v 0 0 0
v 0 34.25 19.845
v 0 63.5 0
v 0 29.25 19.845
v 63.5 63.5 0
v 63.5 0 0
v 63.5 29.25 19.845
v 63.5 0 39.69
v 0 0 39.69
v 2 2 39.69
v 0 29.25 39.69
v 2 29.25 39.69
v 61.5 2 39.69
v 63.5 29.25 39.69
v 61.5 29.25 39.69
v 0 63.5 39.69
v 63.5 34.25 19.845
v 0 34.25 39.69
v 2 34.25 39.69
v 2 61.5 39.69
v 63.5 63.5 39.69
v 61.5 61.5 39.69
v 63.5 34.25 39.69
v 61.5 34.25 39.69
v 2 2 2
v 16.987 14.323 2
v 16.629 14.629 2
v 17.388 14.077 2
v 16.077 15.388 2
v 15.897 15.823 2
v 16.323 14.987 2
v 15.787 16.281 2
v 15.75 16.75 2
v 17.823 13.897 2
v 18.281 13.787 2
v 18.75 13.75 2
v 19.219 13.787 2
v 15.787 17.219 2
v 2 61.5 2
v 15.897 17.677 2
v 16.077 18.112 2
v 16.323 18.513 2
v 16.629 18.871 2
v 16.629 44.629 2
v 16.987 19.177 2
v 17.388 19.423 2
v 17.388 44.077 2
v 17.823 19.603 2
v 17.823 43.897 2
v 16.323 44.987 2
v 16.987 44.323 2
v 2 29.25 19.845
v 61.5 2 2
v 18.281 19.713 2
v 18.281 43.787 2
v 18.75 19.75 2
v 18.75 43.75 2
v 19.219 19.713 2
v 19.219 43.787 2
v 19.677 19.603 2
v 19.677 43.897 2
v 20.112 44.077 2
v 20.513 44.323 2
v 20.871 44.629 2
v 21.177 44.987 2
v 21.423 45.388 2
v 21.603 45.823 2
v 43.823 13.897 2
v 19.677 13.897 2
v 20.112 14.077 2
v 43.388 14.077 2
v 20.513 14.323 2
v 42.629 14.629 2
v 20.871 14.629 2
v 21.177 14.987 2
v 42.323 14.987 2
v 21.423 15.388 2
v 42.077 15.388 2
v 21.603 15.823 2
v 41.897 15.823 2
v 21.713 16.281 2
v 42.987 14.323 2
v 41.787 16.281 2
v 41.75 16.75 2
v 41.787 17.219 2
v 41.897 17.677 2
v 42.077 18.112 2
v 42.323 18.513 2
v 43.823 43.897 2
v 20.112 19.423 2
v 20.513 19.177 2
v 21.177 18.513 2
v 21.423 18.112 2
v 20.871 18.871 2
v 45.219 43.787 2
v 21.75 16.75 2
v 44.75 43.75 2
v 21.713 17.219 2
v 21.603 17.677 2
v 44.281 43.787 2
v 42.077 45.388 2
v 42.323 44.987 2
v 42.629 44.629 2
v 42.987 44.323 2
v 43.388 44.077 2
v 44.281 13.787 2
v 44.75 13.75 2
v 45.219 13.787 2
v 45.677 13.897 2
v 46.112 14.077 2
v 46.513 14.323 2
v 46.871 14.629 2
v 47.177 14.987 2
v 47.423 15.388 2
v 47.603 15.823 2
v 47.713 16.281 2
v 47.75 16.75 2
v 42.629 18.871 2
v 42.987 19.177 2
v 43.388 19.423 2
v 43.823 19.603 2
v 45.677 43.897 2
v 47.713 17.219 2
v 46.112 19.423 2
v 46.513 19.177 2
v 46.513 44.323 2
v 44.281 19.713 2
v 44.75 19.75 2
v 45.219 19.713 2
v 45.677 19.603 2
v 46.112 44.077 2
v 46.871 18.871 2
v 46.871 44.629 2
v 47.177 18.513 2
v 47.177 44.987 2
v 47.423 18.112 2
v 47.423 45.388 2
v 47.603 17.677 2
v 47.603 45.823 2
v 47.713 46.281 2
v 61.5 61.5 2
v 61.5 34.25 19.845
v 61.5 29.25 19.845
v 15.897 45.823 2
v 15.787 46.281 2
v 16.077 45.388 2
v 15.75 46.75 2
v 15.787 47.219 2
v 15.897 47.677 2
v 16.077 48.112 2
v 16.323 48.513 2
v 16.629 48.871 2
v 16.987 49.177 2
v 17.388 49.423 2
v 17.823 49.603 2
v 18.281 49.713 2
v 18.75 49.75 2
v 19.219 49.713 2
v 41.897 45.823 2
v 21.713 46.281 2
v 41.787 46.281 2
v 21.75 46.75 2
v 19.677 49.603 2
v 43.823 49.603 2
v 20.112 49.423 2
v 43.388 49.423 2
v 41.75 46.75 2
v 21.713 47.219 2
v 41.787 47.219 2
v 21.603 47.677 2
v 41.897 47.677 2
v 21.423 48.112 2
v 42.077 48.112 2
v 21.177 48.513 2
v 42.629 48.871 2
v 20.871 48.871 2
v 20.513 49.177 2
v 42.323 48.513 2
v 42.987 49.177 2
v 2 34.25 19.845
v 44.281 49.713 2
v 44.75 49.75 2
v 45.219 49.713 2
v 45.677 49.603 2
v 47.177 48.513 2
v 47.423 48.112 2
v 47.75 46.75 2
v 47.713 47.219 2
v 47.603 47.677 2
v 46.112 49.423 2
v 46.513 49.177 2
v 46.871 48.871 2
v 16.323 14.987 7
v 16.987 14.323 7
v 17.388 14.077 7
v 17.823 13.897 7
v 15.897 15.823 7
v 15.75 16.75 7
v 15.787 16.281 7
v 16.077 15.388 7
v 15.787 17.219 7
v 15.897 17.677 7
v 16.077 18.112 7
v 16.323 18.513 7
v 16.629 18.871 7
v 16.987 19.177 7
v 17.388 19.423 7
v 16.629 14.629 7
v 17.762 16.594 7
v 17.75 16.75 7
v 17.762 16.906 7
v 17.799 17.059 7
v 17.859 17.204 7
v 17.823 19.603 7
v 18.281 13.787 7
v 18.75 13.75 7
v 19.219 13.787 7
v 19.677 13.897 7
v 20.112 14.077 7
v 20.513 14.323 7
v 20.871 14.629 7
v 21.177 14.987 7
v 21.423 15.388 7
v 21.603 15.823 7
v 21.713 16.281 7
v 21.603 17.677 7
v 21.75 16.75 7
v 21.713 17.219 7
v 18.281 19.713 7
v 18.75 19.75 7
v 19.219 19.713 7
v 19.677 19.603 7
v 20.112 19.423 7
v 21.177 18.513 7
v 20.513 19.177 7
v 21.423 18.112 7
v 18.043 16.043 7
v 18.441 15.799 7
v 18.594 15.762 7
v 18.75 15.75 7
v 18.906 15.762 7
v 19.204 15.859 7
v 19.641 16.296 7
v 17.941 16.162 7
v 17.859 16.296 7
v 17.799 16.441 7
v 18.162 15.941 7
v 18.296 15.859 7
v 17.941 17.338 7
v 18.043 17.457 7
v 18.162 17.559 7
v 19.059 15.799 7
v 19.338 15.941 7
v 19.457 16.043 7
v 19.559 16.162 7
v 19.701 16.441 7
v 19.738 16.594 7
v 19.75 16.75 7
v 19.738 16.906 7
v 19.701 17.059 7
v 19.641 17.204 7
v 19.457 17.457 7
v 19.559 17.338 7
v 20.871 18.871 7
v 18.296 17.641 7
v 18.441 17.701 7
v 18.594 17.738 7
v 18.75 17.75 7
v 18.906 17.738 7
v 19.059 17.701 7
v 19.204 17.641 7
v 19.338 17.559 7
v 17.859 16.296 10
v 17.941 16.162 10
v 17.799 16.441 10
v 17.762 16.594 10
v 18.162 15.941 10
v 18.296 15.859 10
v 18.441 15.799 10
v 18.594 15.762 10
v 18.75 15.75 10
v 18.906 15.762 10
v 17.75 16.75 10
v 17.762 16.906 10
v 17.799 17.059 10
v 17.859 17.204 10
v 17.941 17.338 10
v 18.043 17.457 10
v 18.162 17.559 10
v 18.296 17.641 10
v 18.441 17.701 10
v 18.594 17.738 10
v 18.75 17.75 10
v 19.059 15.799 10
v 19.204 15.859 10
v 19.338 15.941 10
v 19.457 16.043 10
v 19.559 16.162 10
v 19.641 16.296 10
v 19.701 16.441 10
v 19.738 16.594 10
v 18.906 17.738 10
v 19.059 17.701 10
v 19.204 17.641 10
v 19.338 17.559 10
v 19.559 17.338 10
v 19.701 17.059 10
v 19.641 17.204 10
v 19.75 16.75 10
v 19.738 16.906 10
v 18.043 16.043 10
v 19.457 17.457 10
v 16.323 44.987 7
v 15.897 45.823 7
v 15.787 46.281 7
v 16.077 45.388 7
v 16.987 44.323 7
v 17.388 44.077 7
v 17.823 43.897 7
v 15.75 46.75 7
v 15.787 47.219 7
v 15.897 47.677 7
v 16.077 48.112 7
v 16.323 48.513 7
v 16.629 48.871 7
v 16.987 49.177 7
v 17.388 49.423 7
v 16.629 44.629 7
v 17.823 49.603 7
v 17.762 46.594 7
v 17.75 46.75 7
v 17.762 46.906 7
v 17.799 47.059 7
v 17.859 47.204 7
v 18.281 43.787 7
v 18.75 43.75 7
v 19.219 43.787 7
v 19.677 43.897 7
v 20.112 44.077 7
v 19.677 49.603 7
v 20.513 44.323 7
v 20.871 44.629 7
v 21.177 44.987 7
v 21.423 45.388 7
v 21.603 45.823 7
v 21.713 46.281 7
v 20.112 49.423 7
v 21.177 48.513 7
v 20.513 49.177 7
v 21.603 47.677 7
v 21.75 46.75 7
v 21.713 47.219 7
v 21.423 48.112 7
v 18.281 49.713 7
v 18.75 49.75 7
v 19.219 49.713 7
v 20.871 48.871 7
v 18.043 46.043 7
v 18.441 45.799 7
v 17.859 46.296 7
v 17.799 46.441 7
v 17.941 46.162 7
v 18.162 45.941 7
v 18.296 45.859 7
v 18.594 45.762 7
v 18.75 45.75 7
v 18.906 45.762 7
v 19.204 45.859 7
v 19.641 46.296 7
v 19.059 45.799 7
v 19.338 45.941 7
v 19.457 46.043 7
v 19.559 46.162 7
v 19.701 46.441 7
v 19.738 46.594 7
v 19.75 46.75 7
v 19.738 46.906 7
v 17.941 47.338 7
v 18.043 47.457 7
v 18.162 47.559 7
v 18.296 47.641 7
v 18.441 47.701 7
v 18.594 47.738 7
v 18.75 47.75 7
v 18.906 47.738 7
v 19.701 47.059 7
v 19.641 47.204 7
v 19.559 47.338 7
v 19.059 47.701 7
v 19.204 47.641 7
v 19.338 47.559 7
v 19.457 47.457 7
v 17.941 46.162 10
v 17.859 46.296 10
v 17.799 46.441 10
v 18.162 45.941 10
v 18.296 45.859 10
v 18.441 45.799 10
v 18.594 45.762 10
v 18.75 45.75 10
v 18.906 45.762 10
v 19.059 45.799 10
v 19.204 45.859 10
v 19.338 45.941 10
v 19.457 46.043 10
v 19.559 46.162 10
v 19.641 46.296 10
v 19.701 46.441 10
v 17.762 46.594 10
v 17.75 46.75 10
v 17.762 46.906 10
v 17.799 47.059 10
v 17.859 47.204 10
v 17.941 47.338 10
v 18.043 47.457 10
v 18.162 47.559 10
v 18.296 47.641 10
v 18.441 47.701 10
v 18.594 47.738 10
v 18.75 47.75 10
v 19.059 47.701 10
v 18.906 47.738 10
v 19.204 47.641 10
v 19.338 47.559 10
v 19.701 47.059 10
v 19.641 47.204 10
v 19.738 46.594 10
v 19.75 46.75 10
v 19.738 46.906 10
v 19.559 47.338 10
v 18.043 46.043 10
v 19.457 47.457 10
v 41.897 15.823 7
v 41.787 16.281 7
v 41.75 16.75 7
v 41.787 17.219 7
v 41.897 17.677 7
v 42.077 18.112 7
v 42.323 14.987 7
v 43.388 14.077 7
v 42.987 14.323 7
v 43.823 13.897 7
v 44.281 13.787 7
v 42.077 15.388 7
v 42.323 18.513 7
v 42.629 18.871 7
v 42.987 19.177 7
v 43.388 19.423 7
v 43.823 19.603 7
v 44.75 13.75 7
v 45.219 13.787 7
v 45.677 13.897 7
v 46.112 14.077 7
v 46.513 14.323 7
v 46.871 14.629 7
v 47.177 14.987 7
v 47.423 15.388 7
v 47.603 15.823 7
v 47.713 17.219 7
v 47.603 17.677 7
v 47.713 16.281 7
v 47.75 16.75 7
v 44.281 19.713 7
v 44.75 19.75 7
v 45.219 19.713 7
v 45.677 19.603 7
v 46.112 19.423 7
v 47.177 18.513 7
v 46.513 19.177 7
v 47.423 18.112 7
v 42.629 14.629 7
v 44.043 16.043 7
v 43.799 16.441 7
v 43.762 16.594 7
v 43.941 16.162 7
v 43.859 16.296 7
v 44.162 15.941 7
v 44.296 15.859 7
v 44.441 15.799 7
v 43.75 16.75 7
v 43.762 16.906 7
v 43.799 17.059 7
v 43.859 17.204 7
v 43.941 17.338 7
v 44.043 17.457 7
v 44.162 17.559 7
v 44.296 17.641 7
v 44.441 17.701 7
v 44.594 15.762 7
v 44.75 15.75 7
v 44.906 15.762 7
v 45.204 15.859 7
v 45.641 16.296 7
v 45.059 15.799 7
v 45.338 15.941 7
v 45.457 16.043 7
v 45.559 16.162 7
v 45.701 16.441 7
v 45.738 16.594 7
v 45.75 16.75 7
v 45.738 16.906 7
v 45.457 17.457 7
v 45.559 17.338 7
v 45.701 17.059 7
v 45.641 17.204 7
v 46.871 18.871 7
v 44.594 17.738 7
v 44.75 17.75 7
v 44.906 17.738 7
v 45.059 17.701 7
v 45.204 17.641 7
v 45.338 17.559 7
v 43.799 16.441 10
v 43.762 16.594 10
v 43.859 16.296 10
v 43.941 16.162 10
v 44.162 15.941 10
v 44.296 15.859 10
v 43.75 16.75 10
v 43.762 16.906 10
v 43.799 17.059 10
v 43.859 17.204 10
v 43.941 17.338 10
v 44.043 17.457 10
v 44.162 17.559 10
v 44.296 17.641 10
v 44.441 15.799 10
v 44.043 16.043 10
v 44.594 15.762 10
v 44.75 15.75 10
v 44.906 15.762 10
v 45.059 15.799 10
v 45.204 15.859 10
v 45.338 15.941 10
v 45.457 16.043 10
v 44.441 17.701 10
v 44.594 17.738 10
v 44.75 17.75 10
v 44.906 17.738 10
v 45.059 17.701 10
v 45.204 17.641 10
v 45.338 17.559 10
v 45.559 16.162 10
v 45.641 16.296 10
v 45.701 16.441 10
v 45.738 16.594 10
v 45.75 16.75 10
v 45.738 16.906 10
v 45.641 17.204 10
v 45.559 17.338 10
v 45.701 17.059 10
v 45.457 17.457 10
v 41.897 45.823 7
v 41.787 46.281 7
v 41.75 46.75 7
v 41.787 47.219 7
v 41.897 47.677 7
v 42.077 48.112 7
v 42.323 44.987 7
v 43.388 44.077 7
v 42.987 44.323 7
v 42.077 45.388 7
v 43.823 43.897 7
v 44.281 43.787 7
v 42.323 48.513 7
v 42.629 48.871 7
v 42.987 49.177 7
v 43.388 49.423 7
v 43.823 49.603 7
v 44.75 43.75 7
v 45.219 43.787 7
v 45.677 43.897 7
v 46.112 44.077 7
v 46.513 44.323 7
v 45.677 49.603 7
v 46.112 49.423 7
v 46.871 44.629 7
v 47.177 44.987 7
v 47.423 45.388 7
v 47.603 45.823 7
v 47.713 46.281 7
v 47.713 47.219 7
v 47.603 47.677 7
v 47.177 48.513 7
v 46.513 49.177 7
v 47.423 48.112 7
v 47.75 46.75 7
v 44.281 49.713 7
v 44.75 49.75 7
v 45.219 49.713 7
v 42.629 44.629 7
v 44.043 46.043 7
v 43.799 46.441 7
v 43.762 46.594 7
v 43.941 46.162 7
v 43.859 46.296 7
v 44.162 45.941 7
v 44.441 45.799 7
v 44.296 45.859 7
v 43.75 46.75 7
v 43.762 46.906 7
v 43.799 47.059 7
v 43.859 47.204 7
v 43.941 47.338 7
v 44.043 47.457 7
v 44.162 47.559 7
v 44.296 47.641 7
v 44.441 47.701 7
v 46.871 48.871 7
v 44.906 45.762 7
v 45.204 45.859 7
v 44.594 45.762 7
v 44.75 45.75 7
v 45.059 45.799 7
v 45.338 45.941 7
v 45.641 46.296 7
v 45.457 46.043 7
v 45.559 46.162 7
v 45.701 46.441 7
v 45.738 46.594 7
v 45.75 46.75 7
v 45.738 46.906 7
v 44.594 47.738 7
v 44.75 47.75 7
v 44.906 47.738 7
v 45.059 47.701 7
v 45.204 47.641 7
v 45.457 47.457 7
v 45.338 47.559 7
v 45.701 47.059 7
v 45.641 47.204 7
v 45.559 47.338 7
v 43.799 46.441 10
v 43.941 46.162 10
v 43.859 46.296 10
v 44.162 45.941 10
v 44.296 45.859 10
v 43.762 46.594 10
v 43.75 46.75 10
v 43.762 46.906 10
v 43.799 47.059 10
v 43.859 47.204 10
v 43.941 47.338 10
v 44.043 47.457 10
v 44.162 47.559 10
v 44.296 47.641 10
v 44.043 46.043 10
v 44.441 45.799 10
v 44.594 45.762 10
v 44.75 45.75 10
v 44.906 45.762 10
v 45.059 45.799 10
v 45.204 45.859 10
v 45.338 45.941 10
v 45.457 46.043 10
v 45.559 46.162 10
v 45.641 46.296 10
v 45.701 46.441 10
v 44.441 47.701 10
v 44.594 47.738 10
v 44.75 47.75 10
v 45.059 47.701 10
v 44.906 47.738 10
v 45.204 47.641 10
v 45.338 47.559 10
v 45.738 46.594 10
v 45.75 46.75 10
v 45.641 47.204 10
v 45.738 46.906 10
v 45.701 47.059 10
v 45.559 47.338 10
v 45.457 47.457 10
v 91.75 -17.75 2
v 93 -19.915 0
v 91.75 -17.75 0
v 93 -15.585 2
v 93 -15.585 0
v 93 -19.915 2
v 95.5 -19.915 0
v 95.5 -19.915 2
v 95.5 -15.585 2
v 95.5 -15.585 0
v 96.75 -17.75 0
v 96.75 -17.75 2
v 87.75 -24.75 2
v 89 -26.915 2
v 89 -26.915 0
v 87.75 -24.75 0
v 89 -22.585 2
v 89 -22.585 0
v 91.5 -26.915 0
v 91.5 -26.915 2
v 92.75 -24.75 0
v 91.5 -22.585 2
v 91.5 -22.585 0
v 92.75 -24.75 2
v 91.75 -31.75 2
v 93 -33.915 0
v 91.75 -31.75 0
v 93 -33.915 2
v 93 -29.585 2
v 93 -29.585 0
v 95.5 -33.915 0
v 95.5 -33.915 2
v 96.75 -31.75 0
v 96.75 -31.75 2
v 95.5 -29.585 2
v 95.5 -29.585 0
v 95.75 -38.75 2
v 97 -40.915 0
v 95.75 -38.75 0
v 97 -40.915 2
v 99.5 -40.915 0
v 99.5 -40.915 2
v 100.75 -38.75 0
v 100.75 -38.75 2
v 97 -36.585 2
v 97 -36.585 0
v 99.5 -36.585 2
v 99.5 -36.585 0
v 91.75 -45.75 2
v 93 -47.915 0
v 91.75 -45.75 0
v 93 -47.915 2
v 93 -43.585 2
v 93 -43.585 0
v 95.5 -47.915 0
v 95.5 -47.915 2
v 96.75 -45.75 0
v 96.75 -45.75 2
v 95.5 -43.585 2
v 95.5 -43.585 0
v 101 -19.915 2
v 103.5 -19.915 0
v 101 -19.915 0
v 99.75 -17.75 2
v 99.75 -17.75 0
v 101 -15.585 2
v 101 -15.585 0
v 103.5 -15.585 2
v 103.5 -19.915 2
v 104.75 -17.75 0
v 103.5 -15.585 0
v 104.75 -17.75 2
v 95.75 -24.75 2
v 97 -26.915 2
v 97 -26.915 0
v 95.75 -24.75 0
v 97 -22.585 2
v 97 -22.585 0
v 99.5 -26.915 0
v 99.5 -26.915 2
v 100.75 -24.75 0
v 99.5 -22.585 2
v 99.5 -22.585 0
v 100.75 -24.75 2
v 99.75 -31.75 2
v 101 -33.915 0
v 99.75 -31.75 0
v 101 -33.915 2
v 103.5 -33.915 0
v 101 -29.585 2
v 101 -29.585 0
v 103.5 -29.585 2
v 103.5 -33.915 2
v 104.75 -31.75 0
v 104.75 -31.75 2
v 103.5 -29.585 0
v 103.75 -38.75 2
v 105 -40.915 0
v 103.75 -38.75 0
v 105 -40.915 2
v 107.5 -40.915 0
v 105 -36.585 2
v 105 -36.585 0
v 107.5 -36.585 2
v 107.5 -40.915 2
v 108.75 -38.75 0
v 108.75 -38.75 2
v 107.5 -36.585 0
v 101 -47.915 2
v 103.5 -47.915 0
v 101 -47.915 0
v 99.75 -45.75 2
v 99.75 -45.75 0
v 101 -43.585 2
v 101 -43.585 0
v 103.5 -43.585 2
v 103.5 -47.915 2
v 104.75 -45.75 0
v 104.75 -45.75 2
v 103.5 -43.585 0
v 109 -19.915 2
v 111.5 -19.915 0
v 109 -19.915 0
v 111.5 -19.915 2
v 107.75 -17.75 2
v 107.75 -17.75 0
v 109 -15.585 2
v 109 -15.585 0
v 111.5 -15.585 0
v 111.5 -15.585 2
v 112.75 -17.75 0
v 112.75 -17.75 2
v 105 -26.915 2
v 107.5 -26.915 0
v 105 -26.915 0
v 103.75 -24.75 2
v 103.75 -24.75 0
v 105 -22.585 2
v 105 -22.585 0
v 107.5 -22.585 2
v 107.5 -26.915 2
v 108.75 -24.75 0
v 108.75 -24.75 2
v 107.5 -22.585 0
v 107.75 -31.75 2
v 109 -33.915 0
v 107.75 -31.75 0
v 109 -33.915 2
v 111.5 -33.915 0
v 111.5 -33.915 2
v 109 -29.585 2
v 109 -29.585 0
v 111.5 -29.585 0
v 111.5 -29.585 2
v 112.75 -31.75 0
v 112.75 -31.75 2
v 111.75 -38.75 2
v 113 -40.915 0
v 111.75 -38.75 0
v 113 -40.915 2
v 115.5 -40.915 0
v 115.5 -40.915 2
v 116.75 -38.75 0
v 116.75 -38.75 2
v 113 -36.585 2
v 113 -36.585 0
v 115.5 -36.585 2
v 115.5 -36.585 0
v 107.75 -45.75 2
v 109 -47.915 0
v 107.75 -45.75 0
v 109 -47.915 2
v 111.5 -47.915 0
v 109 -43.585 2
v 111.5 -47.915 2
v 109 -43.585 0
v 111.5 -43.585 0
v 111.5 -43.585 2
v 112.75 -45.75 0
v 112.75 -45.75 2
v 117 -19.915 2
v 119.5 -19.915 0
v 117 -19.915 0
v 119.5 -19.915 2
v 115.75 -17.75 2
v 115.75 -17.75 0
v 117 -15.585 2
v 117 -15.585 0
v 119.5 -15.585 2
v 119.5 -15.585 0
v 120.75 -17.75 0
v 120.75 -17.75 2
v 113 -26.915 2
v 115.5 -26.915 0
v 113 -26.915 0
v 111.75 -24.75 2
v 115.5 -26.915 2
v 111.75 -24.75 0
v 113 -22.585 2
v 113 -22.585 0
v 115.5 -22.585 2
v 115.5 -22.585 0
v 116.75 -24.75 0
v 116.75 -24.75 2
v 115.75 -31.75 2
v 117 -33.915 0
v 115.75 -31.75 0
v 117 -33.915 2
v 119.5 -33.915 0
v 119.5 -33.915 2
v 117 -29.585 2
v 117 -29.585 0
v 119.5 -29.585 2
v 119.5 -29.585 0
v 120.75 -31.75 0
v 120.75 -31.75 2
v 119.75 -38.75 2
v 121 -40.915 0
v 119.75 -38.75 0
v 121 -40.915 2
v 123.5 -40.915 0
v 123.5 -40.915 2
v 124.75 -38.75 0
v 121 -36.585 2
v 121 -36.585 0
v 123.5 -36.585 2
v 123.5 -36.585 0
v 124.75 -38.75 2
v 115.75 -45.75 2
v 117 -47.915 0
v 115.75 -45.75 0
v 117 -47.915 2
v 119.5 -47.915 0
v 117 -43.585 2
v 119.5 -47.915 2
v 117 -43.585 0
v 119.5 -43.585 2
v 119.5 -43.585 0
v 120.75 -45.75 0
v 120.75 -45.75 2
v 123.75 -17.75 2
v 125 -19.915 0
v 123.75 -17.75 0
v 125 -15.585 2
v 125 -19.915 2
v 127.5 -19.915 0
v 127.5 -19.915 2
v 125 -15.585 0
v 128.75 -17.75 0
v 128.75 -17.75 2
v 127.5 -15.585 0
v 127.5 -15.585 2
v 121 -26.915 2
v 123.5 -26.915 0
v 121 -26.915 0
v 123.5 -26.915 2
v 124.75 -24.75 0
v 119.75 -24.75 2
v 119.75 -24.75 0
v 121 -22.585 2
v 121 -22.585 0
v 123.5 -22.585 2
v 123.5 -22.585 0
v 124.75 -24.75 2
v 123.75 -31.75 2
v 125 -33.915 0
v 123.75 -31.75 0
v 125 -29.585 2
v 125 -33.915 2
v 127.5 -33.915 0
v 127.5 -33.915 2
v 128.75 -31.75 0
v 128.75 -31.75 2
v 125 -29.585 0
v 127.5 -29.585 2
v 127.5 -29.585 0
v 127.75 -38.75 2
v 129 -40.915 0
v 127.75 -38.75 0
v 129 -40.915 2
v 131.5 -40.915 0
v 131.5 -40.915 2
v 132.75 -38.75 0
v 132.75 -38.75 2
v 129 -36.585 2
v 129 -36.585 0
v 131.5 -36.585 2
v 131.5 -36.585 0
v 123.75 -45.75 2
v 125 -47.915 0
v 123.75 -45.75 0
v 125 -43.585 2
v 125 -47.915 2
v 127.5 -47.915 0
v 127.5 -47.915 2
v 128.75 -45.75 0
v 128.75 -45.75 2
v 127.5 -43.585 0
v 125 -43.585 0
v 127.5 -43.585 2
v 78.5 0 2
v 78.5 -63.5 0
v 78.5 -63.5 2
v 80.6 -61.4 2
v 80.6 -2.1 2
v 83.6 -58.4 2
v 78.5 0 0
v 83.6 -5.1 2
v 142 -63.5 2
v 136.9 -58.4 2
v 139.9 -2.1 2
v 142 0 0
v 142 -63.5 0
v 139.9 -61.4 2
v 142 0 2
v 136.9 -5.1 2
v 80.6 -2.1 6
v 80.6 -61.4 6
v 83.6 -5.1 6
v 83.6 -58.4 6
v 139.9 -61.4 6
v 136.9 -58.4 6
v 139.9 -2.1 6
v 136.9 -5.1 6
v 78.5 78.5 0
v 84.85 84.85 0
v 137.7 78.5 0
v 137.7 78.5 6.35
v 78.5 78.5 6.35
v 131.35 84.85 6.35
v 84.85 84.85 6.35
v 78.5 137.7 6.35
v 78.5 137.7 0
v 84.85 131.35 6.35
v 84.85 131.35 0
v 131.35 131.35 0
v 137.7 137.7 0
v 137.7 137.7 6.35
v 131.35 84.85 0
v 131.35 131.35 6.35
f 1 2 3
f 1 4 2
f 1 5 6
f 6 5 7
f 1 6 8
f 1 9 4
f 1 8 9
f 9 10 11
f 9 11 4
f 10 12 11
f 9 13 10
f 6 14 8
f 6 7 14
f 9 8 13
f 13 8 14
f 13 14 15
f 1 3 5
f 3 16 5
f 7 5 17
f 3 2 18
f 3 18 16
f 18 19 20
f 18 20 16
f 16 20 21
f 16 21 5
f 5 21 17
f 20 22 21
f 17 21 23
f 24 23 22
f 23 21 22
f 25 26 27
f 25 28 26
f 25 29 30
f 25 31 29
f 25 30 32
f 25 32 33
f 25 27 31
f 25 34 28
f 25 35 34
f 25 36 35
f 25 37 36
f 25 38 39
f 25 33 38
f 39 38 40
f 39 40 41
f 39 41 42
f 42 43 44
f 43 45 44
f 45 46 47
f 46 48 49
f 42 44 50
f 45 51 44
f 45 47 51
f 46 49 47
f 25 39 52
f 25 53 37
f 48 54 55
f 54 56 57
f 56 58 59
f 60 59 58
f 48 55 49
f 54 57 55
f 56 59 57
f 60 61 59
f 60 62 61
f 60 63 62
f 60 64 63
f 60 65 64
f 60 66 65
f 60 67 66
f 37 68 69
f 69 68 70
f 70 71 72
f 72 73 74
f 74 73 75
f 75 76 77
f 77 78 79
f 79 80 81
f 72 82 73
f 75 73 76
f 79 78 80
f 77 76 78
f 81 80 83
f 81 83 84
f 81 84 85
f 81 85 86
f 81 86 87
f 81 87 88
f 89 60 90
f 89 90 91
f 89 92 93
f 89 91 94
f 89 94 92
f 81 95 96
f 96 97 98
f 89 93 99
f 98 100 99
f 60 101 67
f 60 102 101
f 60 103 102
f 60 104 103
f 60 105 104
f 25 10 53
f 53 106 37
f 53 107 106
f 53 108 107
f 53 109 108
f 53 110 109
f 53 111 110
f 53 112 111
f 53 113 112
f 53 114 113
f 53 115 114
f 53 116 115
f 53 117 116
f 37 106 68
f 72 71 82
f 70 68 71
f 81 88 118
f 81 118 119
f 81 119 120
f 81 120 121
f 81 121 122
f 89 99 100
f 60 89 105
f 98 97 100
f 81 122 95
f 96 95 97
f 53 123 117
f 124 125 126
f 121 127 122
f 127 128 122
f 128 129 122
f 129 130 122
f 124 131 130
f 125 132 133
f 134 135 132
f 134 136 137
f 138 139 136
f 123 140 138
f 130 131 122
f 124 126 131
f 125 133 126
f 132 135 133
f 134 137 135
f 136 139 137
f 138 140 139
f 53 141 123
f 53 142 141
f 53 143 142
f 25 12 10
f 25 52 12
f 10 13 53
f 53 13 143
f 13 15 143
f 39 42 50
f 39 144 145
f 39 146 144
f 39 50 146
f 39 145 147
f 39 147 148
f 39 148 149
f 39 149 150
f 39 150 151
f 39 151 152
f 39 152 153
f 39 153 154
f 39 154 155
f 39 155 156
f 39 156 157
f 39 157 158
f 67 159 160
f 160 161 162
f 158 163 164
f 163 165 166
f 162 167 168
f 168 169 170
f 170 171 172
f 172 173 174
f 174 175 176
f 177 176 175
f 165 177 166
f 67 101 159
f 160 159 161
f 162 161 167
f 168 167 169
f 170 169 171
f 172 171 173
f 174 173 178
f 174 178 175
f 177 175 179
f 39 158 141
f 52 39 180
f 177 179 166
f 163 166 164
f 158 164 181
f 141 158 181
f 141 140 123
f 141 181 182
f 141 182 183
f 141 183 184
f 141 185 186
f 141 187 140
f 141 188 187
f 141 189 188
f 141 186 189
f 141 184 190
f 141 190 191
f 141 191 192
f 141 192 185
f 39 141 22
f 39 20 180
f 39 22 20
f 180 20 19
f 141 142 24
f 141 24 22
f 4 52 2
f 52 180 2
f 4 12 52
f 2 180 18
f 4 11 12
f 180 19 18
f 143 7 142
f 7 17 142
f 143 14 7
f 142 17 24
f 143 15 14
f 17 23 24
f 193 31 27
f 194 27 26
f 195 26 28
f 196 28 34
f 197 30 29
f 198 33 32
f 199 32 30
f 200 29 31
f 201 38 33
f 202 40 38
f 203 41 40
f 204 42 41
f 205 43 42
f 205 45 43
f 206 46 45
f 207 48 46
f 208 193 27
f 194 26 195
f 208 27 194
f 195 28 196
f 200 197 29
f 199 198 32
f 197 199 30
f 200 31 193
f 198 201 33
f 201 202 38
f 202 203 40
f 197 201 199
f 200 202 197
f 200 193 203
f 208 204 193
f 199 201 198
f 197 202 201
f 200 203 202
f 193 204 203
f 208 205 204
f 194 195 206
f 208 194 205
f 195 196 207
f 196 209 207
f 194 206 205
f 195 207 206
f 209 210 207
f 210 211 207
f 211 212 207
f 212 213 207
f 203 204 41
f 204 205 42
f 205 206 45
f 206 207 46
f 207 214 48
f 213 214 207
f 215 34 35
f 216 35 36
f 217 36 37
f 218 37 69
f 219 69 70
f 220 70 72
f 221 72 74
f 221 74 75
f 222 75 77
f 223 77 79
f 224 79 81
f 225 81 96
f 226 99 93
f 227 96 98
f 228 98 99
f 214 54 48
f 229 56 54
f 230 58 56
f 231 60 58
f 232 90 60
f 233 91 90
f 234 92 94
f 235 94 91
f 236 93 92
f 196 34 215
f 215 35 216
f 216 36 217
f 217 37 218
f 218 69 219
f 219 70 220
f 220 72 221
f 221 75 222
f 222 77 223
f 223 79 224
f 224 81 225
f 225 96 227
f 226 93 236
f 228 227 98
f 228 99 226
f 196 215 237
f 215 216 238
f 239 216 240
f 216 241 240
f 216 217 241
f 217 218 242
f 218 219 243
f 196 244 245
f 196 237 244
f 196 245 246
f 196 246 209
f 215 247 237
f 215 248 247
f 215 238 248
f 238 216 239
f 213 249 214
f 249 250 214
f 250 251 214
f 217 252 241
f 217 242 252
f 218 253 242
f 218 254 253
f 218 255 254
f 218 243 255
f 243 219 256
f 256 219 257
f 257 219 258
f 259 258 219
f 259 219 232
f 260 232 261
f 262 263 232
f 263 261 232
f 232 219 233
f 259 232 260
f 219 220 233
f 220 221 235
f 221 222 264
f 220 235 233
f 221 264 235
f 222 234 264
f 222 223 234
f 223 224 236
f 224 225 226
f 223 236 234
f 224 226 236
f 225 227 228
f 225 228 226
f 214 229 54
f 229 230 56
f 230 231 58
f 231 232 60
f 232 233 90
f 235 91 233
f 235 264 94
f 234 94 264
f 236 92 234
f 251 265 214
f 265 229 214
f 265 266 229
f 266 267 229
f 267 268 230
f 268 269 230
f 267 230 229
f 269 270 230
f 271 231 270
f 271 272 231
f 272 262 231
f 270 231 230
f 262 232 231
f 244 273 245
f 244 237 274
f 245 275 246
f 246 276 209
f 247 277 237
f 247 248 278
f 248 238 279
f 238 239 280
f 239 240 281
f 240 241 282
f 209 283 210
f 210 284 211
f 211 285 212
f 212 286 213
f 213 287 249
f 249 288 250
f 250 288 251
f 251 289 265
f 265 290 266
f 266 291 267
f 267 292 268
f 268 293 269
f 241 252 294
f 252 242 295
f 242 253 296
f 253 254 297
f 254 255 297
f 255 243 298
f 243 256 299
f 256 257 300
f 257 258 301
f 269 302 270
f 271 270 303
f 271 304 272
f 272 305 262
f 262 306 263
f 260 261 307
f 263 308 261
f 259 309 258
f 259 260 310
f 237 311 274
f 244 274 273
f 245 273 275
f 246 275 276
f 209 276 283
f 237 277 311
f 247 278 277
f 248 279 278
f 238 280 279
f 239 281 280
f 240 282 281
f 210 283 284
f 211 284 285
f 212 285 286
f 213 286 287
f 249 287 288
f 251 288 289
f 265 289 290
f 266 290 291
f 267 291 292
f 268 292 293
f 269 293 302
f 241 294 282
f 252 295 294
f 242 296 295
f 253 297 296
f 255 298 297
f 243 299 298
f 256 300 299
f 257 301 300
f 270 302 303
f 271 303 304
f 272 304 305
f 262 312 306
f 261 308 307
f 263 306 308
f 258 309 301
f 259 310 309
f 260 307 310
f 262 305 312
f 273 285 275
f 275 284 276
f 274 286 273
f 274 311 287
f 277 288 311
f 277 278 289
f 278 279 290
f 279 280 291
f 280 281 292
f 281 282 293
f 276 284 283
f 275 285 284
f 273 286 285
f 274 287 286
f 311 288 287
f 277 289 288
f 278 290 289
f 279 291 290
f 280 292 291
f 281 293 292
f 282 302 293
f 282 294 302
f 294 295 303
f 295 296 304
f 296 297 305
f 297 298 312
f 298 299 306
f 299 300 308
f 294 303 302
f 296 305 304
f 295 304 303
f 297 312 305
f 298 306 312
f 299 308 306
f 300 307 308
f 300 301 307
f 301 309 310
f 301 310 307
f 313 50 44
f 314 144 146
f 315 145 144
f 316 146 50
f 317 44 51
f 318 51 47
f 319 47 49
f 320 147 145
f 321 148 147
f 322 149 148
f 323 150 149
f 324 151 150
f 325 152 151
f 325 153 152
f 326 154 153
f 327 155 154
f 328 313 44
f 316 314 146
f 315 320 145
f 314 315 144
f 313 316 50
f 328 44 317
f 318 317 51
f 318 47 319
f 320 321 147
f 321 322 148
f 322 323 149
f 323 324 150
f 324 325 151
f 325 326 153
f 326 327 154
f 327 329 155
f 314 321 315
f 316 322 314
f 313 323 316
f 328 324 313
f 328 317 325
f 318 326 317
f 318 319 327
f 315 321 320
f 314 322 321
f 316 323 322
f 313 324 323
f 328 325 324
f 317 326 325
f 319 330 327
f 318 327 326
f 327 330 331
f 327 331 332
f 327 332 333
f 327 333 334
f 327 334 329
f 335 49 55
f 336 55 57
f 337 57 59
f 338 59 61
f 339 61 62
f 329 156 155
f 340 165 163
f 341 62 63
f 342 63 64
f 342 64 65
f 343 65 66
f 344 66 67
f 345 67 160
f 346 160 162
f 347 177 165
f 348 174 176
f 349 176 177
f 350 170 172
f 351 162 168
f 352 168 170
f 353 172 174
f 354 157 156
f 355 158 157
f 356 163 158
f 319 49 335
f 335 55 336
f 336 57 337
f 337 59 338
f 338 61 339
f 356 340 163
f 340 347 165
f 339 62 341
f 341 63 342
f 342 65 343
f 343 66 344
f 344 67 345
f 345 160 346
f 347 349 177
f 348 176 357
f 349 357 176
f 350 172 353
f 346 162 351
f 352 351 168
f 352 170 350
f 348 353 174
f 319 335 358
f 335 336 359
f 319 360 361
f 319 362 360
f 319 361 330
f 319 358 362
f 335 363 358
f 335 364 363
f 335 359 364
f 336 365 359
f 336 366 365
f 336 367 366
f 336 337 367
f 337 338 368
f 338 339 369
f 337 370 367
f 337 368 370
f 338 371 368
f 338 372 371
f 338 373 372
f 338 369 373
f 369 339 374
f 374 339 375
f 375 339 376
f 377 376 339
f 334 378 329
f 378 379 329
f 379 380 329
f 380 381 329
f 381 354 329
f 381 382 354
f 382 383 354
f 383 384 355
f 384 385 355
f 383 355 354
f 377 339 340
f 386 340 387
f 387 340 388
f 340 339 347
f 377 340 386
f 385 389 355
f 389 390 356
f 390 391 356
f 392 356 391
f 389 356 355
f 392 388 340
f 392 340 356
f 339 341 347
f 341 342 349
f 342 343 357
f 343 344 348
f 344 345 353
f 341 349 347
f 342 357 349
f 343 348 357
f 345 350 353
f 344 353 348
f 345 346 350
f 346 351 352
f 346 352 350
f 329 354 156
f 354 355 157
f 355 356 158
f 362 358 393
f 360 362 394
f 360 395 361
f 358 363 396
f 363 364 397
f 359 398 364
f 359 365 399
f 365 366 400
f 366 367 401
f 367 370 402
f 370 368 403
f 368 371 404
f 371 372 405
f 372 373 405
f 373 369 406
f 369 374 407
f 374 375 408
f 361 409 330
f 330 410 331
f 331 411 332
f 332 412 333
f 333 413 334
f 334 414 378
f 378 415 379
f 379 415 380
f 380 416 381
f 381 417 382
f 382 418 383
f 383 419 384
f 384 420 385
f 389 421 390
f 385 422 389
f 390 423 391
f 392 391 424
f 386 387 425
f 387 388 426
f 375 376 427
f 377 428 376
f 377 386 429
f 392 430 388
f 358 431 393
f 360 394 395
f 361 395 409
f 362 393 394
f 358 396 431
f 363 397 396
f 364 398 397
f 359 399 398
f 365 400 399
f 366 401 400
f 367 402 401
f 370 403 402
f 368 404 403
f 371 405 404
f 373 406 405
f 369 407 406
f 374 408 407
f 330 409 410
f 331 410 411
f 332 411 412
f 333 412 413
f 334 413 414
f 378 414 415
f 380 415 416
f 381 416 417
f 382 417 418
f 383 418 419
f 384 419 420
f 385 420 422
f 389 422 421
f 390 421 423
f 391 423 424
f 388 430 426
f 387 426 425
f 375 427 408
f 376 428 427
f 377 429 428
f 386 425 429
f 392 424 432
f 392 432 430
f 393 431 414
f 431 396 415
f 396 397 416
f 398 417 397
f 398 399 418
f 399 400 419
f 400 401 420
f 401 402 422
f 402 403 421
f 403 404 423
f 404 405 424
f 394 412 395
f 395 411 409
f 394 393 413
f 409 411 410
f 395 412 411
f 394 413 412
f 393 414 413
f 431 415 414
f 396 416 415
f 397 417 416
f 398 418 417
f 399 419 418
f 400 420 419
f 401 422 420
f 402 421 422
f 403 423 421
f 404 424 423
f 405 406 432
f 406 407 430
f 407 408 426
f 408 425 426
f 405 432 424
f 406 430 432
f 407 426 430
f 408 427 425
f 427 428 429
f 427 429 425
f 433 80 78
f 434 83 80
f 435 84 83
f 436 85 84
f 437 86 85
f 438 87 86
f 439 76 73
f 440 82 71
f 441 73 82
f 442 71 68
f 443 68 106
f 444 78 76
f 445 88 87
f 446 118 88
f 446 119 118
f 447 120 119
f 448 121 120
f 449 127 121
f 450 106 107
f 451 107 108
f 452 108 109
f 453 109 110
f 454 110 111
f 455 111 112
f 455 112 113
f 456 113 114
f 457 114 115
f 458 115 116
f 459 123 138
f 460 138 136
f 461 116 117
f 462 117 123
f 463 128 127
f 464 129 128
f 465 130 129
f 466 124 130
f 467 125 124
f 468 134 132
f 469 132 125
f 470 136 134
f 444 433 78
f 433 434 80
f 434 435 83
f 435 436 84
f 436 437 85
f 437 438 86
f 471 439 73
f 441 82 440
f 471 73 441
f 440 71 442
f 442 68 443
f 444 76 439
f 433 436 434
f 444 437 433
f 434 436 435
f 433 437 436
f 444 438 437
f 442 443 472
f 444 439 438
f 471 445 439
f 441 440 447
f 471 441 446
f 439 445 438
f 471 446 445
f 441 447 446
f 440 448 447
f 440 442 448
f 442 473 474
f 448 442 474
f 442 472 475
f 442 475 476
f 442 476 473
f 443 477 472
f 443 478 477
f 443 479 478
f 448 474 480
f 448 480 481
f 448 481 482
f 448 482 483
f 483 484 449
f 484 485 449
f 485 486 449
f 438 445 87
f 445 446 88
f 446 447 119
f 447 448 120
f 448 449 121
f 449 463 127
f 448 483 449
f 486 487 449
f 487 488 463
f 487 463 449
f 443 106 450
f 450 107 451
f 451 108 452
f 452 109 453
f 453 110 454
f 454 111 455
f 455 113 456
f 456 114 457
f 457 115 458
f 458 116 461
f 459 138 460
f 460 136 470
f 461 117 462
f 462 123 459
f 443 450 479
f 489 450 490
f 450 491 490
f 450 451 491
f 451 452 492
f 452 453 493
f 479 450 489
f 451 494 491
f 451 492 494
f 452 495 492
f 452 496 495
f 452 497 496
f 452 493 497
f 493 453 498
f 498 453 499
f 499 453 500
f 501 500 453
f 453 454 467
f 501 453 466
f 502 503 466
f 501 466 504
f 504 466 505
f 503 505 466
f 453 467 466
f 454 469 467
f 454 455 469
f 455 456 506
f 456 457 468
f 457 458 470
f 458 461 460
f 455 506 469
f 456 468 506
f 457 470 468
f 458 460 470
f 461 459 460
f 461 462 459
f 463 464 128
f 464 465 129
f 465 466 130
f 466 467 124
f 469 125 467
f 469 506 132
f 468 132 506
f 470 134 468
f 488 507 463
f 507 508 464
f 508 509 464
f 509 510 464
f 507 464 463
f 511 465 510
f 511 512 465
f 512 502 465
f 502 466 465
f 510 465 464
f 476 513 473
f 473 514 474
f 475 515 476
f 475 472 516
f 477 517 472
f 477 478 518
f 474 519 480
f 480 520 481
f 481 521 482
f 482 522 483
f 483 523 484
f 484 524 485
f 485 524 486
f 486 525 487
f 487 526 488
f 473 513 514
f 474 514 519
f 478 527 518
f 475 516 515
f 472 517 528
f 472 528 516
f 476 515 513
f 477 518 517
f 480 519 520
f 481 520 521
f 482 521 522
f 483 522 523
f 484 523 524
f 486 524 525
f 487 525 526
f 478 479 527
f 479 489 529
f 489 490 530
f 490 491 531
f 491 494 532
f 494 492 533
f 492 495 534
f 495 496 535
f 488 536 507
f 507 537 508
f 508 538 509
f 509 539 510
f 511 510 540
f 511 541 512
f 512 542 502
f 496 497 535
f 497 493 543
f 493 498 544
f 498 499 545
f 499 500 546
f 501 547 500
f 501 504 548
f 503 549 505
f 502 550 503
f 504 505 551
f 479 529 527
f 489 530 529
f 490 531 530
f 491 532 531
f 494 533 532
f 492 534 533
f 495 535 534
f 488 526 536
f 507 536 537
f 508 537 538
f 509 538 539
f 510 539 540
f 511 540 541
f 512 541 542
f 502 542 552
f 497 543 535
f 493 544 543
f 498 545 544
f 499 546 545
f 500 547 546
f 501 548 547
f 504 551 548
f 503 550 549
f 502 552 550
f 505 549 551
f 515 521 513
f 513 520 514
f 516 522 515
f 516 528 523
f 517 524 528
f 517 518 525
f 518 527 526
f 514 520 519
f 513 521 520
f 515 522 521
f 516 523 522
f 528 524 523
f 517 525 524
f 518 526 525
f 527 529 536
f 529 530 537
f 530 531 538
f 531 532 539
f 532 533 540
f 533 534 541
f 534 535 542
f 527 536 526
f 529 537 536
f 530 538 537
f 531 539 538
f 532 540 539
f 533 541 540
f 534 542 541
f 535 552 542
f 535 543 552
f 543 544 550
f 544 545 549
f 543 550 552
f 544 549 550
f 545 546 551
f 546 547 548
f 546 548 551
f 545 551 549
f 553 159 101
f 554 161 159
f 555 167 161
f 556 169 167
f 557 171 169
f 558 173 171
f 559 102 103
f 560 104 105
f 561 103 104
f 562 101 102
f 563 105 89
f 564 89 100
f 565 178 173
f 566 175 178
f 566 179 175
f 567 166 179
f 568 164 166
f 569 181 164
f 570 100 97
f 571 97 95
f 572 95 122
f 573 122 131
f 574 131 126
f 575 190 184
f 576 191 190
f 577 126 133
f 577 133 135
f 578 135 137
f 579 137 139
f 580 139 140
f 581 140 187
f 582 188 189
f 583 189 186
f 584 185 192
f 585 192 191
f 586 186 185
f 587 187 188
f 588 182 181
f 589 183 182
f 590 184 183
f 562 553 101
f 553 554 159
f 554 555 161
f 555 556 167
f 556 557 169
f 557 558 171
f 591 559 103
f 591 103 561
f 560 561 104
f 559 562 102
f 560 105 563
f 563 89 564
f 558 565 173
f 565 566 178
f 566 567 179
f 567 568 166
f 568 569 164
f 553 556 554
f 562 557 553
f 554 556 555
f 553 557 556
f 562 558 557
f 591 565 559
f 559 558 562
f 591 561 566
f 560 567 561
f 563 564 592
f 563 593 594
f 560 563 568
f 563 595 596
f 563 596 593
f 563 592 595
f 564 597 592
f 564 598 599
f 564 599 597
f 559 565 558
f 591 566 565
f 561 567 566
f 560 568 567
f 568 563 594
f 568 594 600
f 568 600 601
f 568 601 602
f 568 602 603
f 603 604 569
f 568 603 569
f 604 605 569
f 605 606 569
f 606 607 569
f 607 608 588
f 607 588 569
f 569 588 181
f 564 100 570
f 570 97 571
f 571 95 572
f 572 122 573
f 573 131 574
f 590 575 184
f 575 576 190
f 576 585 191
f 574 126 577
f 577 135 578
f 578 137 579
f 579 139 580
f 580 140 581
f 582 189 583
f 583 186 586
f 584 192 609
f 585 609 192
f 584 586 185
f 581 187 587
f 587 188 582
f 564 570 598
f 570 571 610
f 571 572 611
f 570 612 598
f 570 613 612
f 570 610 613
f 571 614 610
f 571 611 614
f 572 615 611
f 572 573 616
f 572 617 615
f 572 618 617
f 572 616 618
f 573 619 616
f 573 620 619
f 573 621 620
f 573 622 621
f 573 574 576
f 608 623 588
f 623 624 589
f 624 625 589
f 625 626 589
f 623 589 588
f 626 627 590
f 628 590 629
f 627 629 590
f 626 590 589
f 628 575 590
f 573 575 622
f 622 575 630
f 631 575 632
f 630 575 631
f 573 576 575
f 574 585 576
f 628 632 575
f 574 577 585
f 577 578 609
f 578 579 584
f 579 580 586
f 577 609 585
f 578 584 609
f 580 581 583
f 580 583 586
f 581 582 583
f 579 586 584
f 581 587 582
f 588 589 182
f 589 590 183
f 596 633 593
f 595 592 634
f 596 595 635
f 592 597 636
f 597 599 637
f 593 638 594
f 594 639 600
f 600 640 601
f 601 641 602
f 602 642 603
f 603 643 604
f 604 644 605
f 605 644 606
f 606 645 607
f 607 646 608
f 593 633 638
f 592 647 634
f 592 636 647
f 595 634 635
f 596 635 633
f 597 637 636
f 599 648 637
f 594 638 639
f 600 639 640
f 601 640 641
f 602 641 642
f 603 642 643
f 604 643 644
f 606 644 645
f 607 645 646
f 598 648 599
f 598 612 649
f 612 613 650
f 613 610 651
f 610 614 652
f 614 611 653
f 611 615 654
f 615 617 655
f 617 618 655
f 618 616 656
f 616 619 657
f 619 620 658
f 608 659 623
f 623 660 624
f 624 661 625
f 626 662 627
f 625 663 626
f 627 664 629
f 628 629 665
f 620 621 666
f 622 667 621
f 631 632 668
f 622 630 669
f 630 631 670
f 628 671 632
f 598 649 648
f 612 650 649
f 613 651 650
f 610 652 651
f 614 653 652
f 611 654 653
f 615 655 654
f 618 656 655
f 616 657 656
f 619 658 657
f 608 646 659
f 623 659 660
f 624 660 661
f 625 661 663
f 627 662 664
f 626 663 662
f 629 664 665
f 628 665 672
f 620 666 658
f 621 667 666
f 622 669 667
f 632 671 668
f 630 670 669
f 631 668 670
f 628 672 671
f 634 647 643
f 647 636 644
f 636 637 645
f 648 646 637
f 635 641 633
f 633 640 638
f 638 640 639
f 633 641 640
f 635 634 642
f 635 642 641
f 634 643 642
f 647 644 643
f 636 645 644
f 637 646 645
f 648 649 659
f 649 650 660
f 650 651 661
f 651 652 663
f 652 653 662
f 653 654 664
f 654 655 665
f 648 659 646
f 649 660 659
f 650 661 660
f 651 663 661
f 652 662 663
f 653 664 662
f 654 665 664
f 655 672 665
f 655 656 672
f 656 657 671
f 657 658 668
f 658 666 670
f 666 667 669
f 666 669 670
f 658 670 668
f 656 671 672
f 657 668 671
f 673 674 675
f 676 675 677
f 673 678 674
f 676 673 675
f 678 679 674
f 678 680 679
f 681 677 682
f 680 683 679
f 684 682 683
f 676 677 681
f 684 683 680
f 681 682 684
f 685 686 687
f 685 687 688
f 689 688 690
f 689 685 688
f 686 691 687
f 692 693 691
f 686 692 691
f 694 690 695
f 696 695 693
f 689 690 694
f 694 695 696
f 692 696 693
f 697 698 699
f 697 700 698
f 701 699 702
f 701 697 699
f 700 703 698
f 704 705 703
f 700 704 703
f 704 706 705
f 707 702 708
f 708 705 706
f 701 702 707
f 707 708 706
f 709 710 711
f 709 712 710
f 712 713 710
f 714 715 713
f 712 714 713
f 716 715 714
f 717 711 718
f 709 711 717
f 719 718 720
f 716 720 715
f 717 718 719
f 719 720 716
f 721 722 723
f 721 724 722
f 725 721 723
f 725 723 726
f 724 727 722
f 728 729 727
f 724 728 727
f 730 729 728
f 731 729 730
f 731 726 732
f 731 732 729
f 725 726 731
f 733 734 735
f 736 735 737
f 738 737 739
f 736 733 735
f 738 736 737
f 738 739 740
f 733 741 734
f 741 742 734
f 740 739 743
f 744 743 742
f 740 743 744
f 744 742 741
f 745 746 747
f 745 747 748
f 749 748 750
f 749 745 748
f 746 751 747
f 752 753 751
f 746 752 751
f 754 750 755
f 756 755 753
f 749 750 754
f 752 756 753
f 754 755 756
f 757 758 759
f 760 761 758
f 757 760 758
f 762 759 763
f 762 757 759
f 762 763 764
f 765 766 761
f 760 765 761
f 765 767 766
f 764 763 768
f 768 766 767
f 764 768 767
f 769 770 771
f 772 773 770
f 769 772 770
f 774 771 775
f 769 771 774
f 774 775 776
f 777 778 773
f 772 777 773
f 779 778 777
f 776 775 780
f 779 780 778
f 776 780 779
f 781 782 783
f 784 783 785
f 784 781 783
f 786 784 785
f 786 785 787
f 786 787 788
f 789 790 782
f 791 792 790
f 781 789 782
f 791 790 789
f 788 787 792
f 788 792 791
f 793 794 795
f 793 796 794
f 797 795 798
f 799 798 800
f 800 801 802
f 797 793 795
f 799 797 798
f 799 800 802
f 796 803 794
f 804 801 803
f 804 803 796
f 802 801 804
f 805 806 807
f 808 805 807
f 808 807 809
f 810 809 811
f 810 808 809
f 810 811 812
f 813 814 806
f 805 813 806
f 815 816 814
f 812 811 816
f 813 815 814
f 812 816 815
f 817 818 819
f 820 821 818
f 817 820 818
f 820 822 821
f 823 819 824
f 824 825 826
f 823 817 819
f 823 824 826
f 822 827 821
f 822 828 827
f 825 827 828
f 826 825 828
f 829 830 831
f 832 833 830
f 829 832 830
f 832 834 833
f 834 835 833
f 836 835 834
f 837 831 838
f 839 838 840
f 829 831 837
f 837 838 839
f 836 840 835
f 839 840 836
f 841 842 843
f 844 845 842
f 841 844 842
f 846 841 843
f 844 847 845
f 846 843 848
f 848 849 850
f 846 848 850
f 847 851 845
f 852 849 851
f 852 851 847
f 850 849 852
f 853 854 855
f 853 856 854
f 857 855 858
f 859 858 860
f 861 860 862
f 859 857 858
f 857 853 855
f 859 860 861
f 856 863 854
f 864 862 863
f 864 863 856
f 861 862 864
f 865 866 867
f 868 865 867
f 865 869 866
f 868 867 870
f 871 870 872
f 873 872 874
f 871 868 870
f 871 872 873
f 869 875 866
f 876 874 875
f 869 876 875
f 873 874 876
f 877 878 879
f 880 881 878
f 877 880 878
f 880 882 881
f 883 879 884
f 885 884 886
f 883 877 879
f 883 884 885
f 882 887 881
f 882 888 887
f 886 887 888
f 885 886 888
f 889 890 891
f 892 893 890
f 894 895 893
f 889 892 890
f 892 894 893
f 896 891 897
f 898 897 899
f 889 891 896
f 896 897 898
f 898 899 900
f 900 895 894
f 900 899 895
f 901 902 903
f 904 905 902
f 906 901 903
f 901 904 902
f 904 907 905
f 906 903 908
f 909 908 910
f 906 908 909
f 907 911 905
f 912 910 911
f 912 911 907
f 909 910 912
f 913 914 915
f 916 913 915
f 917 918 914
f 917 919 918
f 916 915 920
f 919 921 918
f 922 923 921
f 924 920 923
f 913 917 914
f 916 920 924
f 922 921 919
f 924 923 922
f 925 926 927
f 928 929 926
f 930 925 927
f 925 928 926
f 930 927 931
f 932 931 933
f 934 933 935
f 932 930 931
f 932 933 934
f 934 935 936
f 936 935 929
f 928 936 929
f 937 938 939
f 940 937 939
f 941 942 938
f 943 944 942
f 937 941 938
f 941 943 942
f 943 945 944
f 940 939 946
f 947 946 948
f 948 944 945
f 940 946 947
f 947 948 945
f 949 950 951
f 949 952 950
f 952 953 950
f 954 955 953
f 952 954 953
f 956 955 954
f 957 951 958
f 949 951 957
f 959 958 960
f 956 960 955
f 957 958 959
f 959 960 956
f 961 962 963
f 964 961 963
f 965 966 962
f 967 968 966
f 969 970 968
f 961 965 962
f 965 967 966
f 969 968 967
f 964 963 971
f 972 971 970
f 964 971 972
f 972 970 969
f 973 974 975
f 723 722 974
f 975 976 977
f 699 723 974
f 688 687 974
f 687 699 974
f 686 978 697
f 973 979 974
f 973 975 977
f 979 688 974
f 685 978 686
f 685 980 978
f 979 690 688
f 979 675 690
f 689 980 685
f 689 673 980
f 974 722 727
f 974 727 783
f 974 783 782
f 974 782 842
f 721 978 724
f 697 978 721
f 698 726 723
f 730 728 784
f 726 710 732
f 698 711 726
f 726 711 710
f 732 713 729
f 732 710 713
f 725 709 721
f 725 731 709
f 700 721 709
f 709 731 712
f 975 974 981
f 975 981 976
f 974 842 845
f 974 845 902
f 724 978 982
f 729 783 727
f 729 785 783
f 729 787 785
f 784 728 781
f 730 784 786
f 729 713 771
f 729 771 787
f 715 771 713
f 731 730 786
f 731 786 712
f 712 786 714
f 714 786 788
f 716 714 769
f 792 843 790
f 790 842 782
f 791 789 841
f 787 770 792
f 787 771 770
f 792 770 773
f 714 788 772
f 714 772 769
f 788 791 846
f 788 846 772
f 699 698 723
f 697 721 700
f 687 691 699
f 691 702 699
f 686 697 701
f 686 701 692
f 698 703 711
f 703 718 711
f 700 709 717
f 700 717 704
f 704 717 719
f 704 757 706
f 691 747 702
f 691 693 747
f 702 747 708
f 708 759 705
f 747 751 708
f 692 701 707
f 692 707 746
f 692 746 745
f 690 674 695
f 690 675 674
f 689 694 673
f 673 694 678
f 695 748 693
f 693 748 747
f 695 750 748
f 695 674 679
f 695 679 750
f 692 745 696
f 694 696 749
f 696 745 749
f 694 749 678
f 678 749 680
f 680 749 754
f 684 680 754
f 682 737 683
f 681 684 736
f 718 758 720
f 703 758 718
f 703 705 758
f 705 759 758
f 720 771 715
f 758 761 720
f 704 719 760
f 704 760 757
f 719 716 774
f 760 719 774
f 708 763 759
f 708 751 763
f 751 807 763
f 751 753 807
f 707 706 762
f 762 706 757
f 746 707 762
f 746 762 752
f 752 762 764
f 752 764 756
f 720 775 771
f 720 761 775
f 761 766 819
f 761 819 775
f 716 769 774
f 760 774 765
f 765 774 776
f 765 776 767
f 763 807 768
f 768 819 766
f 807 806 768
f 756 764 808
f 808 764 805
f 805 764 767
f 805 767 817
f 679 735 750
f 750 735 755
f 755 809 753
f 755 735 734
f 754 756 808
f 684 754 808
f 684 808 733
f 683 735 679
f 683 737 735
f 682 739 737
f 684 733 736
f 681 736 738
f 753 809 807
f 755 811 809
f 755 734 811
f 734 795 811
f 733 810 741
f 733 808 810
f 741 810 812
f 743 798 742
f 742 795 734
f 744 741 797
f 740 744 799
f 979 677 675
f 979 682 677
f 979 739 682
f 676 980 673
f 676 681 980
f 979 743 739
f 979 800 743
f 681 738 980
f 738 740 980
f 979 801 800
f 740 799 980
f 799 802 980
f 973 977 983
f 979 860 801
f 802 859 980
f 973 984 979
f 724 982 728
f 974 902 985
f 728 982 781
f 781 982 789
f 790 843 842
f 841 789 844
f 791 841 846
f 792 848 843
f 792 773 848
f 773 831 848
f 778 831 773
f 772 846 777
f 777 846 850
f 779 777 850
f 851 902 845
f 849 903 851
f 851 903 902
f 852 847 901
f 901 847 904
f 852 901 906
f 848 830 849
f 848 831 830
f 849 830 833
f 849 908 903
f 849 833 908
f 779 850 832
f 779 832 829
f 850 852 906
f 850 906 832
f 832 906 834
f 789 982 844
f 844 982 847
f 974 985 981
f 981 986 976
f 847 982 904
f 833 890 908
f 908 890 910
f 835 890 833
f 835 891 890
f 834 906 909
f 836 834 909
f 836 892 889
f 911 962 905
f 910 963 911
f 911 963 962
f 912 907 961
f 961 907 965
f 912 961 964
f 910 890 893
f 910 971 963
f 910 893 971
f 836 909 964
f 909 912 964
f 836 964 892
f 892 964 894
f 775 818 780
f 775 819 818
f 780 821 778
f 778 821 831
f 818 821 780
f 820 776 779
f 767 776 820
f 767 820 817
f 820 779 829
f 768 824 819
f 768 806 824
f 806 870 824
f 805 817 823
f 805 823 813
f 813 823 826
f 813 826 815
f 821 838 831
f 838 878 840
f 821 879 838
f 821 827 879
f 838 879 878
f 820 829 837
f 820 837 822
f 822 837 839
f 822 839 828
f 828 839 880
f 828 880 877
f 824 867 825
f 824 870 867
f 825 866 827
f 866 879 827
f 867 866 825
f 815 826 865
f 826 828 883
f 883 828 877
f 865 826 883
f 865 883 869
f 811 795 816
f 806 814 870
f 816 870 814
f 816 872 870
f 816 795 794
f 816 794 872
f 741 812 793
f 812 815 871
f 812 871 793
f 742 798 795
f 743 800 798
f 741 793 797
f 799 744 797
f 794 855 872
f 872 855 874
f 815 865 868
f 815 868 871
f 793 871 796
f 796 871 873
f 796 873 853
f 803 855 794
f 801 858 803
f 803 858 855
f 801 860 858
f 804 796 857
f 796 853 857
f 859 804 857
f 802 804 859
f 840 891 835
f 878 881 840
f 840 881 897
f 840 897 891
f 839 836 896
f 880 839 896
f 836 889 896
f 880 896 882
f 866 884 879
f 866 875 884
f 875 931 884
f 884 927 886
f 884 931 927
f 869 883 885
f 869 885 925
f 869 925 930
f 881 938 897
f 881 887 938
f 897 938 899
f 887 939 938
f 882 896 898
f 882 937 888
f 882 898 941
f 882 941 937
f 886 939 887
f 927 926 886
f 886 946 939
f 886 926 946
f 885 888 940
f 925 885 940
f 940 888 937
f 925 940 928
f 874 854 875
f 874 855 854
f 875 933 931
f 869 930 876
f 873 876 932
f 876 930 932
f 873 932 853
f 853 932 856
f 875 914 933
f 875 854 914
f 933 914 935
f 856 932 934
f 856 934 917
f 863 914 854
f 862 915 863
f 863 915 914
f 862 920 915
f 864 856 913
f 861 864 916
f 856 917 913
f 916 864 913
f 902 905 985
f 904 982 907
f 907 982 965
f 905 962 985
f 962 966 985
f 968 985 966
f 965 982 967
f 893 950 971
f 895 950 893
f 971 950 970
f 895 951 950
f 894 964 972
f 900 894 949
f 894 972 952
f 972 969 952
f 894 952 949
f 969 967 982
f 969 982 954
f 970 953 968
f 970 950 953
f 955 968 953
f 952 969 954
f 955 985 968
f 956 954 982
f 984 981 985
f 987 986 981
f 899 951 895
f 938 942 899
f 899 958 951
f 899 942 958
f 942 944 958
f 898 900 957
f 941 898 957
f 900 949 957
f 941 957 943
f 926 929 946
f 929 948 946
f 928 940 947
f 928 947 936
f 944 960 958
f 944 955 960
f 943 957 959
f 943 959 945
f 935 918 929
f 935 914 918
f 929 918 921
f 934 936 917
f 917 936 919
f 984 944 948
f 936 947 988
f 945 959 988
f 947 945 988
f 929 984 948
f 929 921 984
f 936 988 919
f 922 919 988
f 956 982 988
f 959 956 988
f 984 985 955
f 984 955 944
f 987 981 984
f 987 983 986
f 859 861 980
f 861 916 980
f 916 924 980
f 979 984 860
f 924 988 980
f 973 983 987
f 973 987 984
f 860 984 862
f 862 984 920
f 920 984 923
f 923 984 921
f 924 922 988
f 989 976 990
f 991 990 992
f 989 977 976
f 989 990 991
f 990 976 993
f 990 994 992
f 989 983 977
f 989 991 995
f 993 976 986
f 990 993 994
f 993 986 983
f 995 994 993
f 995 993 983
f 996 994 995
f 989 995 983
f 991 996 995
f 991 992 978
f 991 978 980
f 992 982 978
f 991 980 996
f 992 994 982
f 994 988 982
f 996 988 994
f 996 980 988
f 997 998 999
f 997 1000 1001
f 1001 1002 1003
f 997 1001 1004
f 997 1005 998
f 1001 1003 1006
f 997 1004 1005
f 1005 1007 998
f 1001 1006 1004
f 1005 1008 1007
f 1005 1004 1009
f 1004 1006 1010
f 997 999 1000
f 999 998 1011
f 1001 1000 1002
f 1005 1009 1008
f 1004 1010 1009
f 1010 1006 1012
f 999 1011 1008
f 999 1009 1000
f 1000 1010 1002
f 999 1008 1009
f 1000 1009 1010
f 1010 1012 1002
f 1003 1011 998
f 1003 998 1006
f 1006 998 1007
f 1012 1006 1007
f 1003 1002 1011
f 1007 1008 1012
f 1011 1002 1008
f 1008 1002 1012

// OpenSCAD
// Custom Enclosure for ULN2003 Stepper Motor Driver Board
// Updated: Box height 1 9/16", pin standoffs, and a printable sliding wire retention ring.

$fn = 40; // Circle smoothness

// --- PARAMETERS ---
box_size = 63.5;       // 2.5 inches square
box_height = 39.69;    // 1 9/16 inches overall height
wall_thick = 2.0;      // Outer shell wall thickness

// Board Mounting Dimensions (Calculated from ruler photos: ~26mm x 30mm)
pcb_hole_w = 26.0;     // Center-to-center hole spacing (Width)
pcb_hole_l = 30.0;     // Center-to-center hole spacing (Length)

standoff_h = 5.0;      // Height of main support base
standoff_dia = 6.0;    // Diameter of standoff base pillars
pin_h = 3.0;           // Height of alignment pin extending above standoff
pin_dia = 2.0;         // Diameter of alignment pin (fits standard PCB holes)

// Slits for wires (Halfway down opposite walls)
slit_w = 5.0;          // Width of wire drop slots
slit_depth = box_height / 2; 

// Wire Retention Ring Dimensions
ring_height = 6.35;    // 1/4 inch high
ring_width = 6.35;     // 1/4 inch wall thickness
ring_clearance = 0.15; // Clearance tolerance to slide down nicely inside box


// --- PRINT BED ARRANGEMENT (Z = 0) ---

// 1. Main Enclosure Base
translate([0, 0, 0]) {
    main_enclosure_base();
}

// 2. Enclosure Lid (Placed side-by-side with a 15mm layout gap)
translate([box_size + 15, 0, wall_thick]) {
    rotate([180, 0, 0]) {
        enclosure_lid();
    }
}

// 3. Sliding Wire Retention Ring (Placed below the lid with a 15mm layout gap)
translate([box_size + 15, box_size + 15, 0]) {
    wire_retention_ring();
}


// --- MODULES ---

module main_enclosure_base() {
    difference() {
        // Outer Solid Box
        cube([box_size, box_size, box_height]);
        
        // Inner Hollow Space
        translate([wall_thick, wall_thick, wall_thick])
            cube([box_size - (wall_thick * 2), box_size - (wall_thick * 2), box_height]);
        
        // Wire Slit 1 (Left wall, centered)
        translate([-0.1, box_size / 2 - slit_w / 2, box_height - slit_depth])
            cube([wall_thick + 0.2, slit_w, slit_depth + 0.1]);
            
        // Wire Slit 2 (Right wall, centered)
        translate([box_size - wall_thick - 0.1, box_size / 2 - slit_w / 2, box_height - slit_depth])
            cube([wall_thick + 0.2, slit_w, slit_depth + 0.1]);
    }
    
    // Four Centered PCB Pin Standoffs
    translate([box_size / 2, box_size / 2, wall_thick]) {
        for (x = [-pcb_hole_w / 2, pcb_hole_w / 2]) {
            for (y = [-pcb_hole_l / 2, pcb_hole_l / 2]) {
                translate([x, y, 0]) {
                    // Standoff Support Base
                    cylinder(h = standoff_h, d = standoff_dia);
                    // Alignment Pin on top
                    translate([0, 0, standoff_h])
                        cylinder(h = pin_h, d = pin_dia);
                }
            }
        }
    }
}

module enclosure_lid() {
    lid_lip_height = 4.0; // Deeper friction path for a tight fit
    lid_clearance = 0.1;  // Reduced clearance for a tighter snap fit
    lip_thick = 3.0;      // Thicker wall layers on the inner lip profile
    
    // Main Lid Flat Plate
    difference() {
        cube([box_size, box_size, wall_thick]);
        
        // Ventilation Array (Hexagonal patterns centered on the top)
        translate([box_size / 2, box_size / 2, -0.1]) {
            for (xi = [-2:2]) {
                for (yi = [-2:2]) {
                    translate([xi * 8 + (yi % 2 * 4), yi * 7, 0])
                        cylinder(h = wall_thick + 0.2, r = 2.5, $fn = 6);
                }
            }
        }
    }
    
    // Reinforced Inner Alignment Lip 
    difference() {
        translate([wall_thick + lid_clearance, wall_thick + lid_clearance, -lid_lip_height])
            cube([box_size - (wall_thick * 2) - (lid_clearance * 2), box_size - (wall_thick * 2) - (lid_clearance * 2), lid_lip_height]);
        
        // Inner clearance cutout leaving a strong, thick tracking lip perimeter
        translate([wall_thick + lid_clearance + lip_thick, wall_thick + lid_clearance + lip_thick, -lid_lip_height - 0.1])
            cube([box_size - (wall_thick * 2) - (lid_clearance * 2) - (lip_thick * 2), box_size - (wall_thick * 2) - (lid_clearance * 2) - (lip_thick * 2), lid_lip_height + 0.2]);
    }
}

module wire_retention_ring() {
    // Computes the size needed to slide perfectly into the box's inner footprint
    outer_ring_size = box_size - (wall_thick * 2) - (ring_clearance * 2);
    inner_ring_size = outer_ring_size - (ring_width * 2);
    
    difference() {
        // Outer ring solid boundary
        cube([outer_ring_size, outer_ring_size, ring_height]);
        
        // Center cutout to leave a 1/4" boundary profile
        translate([ring_width, ring_width, -0.1])
            cube([inner_ring_size, inner_ring_size, ring_height + 0.2]);
    }
}
